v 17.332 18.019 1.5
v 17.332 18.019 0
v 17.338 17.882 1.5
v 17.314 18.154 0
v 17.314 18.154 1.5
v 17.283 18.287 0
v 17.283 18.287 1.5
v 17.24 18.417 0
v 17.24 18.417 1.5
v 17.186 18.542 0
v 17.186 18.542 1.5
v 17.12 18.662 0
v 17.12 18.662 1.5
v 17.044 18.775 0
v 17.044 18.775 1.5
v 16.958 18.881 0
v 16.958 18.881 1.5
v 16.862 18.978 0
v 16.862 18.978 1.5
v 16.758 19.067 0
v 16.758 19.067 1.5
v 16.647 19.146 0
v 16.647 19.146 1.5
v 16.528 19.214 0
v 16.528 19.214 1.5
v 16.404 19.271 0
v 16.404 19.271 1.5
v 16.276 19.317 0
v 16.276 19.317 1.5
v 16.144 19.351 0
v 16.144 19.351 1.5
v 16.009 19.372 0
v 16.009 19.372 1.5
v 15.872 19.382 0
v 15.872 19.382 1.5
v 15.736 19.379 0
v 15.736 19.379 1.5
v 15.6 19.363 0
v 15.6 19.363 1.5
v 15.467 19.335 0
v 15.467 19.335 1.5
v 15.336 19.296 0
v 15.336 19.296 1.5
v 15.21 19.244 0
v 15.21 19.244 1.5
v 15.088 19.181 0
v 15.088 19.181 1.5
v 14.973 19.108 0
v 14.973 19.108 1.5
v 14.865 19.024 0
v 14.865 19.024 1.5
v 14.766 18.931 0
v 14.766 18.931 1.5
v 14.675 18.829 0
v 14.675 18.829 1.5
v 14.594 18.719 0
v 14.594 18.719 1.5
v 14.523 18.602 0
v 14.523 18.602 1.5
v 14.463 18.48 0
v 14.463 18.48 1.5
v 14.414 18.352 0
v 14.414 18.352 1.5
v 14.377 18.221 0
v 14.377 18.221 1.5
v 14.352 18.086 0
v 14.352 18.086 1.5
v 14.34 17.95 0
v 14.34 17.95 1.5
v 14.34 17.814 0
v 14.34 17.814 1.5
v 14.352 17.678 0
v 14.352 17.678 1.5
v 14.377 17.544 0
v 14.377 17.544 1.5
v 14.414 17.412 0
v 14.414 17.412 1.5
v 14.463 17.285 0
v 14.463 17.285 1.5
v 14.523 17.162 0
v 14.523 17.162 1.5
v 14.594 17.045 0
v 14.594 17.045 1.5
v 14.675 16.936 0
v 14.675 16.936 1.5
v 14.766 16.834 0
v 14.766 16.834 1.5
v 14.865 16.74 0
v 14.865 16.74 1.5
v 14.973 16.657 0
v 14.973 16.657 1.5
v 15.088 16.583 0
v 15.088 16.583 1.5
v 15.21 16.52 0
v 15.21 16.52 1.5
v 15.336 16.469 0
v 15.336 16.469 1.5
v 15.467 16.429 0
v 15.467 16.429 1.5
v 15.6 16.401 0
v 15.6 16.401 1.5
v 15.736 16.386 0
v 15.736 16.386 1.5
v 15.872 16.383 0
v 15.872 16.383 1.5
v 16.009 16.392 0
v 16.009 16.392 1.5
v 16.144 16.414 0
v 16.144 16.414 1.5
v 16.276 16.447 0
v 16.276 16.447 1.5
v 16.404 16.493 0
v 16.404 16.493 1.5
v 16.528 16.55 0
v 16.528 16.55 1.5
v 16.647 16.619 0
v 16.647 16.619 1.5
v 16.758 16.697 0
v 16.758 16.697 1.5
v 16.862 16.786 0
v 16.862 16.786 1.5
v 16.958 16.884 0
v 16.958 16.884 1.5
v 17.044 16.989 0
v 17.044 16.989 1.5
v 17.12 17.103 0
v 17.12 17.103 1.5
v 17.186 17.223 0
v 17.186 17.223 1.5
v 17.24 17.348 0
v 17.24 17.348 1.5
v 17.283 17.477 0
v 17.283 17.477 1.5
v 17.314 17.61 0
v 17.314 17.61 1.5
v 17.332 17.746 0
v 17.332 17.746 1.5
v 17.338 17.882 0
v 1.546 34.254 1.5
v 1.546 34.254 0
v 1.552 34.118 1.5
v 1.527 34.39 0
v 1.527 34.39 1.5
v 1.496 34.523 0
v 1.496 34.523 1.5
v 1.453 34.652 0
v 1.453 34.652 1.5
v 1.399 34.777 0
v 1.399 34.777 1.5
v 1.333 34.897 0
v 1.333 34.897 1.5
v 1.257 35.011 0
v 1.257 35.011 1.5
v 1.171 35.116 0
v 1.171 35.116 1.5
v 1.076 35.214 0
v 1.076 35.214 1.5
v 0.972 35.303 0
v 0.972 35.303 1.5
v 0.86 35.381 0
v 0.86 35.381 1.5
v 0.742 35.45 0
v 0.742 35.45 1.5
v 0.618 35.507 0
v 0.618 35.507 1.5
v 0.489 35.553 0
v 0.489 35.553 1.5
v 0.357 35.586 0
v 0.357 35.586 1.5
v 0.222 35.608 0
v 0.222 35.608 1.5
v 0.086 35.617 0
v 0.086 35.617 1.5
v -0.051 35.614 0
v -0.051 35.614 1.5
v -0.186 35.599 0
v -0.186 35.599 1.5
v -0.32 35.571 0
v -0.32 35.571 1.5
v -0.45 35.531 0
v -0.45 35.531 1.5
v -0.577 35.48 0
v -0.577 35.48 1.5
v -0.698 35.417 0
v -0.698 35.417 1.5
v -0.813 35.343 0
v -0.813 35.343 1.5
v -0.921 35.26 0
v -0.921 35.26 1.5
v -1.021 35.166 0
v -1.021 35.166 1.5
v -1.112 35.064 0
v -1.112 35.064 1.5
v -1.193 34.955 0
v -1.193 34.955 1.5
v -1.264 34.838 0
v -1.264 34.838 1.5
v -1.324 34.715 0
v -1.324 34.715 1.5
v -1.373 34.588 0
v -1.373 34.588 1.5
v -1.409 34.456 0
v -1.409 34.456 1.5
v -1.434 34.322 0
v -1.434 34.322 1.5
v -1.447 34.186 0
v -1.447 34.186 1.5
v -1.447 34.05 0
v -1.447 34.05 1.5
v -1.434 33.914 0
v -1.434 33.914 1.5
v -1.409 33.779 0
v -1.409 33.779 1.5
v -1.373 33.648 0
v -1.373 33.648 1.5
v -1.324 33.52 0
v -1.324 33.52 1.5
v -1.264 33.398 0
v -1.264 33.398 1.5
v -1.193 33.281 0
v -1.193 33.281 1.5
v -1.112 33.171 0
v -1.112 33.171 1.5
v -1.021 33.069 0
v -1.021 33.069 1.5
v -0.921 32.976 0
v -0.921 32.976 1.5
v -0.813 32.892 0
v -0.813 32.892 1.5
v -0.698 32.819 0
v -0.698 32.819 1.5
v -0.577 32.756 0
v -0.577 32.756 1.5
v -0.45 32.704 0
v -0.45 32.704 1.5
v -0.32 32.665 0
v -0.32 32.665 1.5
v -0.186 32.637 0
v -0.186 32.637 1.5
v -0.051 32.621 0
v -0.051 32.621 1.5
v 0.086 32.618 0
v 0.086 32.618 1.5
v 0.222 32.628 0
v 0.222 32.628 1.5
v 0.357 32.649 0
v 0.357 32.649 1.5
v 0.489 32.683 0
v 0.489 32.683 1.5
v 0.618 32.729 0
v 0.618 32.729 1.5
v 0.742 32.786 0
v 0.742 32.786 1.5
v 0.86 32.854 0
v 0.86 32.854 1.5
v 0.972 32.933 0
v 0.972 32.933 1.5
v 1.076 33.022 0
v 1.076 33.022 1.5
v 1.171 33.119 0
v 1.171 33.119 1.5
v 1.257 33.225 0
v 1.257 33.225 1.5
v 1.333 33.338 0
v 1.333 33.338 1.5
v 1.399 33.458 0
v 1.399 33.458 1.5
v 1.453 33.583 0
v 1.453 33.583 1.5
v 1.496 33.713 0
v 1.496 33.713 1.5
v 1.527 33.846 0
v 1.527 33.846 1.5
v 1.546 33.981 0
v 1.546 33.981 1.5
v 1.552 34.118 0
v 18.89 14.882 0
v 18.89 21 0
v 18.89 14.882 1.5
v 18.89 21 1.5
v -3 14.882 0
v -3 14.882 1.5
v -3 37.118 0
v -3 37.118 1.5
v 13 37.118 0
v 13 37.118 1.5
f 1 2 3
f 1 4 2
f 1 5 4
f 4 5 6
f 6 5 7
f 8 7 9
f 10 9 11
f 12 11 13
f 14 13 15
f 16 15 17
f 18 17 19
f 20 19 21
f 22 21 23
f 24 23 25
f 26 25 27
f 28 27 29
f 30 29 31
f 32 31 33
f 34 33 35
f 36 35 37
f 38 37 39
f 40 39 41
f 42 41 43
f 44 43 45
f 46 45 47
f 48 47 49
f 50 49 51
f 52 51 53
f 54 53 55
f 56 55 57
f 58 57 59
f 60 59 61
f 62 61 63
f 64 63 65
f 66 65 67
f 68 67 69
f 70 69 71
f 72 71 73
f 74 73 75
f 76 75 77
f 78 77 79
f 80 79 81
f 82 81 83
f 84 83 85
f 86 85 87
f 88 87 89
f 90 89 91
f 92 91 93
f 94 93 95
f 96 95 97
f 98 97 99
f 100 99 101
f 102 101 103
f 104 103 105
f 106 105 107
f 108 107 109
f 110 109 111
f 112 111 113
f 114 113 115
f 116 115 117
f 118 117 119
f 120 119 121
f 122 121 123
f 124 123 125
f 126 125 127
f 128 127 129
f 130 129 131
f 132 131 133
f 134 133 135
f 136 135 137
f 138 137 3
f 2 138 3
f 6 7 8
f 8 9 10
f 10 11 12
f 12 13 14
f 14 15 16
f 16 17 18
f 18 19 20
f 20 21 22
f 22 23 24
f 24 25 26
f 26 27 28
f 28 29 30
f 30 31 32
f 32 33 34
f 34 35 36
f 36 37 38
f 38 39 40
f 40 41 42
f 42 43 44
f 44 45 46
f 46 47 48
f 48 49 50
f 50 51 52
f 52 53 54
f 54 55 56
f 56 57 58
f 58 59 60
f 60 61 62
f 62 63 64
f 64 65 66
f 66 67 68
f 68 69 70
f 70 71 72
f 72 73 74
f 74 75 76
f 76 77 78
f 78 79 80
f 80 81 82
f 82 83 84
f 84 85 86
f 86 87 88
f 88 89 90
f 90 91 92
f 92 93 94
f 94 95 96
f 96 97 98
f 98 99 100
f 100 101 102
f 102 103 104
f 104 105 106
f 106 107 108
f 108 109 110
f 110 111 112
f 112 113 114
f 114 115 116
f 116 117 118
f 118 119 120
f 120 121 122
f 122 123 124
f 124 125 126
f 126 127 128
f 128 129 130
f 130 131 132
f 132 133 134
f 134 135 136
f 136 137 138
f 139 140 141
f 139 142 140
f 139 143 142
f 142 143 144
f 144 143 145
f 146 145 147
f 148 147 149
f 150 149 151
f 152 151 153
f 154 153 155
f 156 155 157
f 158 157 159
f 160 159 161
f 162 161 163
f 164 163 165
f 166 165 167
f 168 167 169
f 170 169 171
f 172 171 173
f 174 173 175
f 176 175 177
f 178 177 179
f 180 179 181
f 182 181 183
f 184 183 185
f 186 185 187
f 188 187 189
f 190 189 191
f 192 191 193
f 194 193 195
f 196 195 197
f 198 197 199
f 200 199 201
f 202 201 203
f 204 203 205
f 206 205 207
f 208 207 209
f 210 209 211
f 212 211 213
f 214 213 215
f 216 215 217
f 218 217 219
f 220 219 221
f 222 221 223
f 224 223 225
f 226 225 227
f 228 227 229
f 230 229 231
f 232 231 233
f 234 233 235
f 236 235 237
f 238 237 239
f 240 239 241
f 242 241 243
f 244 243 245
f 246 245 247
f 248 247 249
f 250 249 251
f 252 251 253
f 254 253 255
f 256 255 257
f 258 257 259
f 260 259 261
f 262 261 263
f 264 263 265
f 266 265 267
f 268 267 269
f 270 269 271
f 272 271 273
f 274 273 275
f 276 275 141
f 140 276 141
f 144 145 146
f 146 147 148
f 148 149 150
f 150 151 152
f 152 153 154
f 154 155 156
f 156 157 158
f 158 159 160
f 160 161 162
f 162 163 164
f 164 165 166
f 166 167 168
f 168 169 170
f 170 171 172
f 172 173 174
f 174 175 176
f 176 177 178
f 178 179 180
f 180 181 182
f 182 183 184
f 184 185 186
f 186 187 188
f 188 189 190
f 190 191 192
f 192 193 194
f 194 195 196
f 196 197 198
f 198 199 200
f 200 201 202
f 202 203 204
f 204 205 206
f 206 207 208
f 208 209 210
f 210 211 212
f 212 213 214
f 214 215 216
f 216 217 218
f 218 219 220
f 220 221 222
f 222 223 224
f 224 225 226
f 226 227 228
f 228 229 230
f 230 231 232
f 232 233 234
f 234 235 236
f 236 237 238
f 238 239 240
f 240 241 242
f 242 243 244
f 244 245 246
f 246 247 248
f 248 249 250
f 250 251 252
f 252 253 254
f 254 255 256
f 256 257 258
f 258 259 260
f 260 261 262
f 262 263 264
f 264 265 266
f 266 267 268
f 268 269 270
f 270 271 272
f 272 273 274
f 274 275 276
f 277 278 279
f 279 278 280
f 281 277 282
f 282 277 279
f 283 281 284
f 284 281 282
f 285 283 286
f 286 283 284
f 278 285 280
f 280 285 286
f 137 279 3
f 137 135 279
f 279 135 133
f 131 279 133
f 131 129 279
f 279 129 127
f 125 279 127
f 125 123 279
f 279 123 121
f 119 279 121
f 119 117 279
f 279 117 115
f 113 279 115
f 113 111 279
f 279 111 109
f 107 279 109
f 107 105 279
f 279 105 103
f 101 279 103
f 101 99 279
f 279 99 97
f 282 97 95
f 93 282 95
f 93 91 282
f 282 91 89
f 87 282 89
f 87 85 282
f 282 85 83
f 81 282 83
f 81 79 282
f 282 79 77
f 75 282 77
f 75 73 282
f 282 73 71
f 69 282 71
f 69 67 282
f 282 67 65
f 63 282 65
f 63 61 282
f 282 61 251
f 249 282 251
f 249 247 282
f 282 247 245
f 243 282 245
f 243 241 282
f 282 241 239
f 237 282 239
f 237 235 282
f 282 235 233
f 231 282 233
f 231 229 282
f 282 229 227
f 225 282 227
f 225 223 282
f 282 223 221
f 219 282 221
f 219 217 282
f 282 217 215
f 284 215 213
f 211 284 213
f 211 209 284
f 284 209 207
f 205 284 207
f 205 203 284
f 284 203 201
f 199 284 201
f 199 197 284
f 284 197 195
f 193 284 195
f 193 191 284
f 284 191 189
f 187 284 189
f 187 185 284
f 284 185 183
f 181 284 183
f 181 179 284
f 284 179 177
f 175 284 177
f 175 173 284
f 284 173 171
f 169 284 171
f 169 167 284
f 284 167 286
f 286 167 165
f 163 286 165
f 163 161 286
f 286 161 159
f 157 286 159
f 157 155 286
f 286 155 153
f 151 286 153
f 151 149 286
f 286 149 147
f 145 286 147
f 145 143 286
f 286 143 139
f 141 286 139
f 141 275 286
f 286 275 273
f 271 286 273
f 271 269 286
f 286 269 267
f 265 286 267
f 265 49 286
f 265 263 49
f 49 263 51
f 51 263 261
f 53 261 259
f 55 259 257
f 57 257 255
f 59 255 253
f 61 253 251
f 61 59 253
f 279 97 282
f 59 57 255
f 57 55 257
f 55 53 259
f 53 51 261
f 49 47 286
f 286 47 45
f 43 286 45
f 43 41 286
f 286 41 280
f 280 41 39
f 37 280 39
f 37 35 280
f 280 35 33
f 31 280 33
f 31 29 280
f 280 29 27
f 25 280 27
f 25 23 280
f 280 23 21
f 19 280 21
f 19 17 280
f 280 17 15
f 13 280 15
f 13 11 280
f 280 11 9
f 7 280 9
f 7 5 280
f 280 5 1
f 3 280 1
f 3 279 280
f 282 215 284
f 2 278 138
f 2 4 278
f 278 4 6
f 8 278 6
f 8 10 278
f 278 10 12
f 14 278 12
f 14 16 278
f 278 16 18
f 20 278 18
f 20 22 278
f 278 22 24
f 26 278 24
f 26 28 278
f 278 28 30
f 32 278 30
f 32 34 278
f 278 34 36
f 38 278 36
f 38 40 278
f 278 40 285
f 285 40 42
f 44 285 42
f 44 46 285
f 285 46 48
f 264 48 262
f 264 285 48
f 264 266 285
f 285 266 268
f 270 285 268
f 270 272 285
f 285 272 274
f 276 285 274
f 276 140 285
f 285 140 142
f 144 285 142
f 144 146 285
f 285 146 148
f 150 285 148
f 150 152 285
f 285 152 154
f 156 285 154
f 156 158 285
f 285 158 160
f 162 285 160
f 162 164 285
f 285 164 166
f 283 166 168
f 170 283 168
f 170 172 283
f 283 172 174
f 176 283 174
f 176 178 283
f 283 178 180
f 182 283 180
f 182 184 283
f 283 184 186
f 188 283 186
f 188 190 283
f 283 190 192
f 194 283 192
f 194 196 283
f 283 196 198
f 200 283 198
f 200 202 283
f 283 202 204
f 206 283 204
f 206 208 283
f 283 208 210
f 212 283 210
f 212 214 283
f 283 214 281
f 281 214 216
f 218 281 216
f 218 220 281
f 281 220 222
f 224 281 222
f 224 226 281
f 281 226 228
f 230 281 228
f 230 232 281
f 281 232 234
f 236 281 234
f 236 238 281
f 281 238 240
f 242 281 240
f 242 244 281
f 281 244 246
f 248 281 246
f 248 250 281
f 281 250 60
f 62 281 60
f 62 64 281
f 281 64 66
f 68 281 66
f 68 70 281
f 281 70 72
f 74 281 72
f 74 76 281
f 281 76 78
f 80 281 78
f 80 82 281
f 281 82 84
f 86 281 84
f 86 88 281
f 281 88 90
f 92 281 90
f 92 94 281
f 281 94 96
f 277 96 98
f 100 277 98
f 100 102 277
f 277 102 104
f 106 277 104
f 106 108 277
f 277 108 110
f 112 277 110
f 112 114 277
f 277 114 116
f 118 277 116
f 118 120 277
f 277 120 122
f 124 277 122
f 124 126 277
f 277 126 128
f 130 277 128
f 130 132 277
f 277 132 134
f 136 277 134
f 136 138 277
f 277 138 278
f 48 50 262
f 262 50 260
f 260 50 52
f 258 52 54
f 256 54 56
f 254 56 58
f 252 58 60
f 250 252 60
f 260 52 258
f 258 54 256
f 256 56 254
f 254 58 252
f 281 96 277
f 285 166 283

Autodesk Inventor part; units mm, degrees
ref_plane "YZ Plane" through (0, 0, 0) normal (1, 0, 0) x (0, 1, 0)
ref_plane "XZ Plane" through (0, 0, 0) normal (0, 1, 0) x (-1, 0, 0)
ref_plane "XY Plane" through (0, 0, 0) normal (0, 0, 1) x (1, 0, 0)
sketch "Sketch1" plane through (0, 0, 0) normal (0, 0, 1) x (1, 0, 0)
  line L0 (3, -6) -> (-3, -6) projected
  line L1 (3, 21) -> (3, -6) projected
  line L2 (-3, 21) -> (3, 21) projected
  line L3 (-3, -6) -> (-3, 21) projected
  circle A0 centre (15.8383, 17.8821) radius 1.5 projected
  line L4 (18.8902, -6) -> (18.8902, 21) projected
  line L5 (13, 21) -> (18.8902, 21) projected
  line L6 (13, -6) -> (13, 21) projected
  line L7 (18.8902, -6) -> (13, -6) projected
  circle A1 centre (0.0519, 34.1179) radius 1.5 projected
  line L8 (3, 46) -> (3, 31) projected
  line L9 (-3, 46) -> (3, 46) projected
  line L10 (-3, 31) -> (-3, 46) projected
  line L11 (3, 31) -> (-3, 31) projected
  line L12 (18.8902, 14.8821) -> (-3, 14.8821)
  line L13 (-3, 14.8821) -> (-3, 37.1179)
  line L14 (-3, 37.1179) -> (13, 37.1179)
  line L15 (18.8902, 21) -> (18.8902, 14.8821)
  line L16 (18.8902, 21) -> (13, 37.1179)
  point P0 (0, 0)
  dimension "d0" = 3
  dimension "d1" = 3
extrude "Extrusion1" add sketch "Sketch1" along normal blind 1.5 contours L12 L3 L2 L1 | L1 L2 L13 L11 L8 L14 L16 L5 L6 L12 | L6 L5 L4 L12 | L10 L14 L8 L11
properties part number "top_plate"
